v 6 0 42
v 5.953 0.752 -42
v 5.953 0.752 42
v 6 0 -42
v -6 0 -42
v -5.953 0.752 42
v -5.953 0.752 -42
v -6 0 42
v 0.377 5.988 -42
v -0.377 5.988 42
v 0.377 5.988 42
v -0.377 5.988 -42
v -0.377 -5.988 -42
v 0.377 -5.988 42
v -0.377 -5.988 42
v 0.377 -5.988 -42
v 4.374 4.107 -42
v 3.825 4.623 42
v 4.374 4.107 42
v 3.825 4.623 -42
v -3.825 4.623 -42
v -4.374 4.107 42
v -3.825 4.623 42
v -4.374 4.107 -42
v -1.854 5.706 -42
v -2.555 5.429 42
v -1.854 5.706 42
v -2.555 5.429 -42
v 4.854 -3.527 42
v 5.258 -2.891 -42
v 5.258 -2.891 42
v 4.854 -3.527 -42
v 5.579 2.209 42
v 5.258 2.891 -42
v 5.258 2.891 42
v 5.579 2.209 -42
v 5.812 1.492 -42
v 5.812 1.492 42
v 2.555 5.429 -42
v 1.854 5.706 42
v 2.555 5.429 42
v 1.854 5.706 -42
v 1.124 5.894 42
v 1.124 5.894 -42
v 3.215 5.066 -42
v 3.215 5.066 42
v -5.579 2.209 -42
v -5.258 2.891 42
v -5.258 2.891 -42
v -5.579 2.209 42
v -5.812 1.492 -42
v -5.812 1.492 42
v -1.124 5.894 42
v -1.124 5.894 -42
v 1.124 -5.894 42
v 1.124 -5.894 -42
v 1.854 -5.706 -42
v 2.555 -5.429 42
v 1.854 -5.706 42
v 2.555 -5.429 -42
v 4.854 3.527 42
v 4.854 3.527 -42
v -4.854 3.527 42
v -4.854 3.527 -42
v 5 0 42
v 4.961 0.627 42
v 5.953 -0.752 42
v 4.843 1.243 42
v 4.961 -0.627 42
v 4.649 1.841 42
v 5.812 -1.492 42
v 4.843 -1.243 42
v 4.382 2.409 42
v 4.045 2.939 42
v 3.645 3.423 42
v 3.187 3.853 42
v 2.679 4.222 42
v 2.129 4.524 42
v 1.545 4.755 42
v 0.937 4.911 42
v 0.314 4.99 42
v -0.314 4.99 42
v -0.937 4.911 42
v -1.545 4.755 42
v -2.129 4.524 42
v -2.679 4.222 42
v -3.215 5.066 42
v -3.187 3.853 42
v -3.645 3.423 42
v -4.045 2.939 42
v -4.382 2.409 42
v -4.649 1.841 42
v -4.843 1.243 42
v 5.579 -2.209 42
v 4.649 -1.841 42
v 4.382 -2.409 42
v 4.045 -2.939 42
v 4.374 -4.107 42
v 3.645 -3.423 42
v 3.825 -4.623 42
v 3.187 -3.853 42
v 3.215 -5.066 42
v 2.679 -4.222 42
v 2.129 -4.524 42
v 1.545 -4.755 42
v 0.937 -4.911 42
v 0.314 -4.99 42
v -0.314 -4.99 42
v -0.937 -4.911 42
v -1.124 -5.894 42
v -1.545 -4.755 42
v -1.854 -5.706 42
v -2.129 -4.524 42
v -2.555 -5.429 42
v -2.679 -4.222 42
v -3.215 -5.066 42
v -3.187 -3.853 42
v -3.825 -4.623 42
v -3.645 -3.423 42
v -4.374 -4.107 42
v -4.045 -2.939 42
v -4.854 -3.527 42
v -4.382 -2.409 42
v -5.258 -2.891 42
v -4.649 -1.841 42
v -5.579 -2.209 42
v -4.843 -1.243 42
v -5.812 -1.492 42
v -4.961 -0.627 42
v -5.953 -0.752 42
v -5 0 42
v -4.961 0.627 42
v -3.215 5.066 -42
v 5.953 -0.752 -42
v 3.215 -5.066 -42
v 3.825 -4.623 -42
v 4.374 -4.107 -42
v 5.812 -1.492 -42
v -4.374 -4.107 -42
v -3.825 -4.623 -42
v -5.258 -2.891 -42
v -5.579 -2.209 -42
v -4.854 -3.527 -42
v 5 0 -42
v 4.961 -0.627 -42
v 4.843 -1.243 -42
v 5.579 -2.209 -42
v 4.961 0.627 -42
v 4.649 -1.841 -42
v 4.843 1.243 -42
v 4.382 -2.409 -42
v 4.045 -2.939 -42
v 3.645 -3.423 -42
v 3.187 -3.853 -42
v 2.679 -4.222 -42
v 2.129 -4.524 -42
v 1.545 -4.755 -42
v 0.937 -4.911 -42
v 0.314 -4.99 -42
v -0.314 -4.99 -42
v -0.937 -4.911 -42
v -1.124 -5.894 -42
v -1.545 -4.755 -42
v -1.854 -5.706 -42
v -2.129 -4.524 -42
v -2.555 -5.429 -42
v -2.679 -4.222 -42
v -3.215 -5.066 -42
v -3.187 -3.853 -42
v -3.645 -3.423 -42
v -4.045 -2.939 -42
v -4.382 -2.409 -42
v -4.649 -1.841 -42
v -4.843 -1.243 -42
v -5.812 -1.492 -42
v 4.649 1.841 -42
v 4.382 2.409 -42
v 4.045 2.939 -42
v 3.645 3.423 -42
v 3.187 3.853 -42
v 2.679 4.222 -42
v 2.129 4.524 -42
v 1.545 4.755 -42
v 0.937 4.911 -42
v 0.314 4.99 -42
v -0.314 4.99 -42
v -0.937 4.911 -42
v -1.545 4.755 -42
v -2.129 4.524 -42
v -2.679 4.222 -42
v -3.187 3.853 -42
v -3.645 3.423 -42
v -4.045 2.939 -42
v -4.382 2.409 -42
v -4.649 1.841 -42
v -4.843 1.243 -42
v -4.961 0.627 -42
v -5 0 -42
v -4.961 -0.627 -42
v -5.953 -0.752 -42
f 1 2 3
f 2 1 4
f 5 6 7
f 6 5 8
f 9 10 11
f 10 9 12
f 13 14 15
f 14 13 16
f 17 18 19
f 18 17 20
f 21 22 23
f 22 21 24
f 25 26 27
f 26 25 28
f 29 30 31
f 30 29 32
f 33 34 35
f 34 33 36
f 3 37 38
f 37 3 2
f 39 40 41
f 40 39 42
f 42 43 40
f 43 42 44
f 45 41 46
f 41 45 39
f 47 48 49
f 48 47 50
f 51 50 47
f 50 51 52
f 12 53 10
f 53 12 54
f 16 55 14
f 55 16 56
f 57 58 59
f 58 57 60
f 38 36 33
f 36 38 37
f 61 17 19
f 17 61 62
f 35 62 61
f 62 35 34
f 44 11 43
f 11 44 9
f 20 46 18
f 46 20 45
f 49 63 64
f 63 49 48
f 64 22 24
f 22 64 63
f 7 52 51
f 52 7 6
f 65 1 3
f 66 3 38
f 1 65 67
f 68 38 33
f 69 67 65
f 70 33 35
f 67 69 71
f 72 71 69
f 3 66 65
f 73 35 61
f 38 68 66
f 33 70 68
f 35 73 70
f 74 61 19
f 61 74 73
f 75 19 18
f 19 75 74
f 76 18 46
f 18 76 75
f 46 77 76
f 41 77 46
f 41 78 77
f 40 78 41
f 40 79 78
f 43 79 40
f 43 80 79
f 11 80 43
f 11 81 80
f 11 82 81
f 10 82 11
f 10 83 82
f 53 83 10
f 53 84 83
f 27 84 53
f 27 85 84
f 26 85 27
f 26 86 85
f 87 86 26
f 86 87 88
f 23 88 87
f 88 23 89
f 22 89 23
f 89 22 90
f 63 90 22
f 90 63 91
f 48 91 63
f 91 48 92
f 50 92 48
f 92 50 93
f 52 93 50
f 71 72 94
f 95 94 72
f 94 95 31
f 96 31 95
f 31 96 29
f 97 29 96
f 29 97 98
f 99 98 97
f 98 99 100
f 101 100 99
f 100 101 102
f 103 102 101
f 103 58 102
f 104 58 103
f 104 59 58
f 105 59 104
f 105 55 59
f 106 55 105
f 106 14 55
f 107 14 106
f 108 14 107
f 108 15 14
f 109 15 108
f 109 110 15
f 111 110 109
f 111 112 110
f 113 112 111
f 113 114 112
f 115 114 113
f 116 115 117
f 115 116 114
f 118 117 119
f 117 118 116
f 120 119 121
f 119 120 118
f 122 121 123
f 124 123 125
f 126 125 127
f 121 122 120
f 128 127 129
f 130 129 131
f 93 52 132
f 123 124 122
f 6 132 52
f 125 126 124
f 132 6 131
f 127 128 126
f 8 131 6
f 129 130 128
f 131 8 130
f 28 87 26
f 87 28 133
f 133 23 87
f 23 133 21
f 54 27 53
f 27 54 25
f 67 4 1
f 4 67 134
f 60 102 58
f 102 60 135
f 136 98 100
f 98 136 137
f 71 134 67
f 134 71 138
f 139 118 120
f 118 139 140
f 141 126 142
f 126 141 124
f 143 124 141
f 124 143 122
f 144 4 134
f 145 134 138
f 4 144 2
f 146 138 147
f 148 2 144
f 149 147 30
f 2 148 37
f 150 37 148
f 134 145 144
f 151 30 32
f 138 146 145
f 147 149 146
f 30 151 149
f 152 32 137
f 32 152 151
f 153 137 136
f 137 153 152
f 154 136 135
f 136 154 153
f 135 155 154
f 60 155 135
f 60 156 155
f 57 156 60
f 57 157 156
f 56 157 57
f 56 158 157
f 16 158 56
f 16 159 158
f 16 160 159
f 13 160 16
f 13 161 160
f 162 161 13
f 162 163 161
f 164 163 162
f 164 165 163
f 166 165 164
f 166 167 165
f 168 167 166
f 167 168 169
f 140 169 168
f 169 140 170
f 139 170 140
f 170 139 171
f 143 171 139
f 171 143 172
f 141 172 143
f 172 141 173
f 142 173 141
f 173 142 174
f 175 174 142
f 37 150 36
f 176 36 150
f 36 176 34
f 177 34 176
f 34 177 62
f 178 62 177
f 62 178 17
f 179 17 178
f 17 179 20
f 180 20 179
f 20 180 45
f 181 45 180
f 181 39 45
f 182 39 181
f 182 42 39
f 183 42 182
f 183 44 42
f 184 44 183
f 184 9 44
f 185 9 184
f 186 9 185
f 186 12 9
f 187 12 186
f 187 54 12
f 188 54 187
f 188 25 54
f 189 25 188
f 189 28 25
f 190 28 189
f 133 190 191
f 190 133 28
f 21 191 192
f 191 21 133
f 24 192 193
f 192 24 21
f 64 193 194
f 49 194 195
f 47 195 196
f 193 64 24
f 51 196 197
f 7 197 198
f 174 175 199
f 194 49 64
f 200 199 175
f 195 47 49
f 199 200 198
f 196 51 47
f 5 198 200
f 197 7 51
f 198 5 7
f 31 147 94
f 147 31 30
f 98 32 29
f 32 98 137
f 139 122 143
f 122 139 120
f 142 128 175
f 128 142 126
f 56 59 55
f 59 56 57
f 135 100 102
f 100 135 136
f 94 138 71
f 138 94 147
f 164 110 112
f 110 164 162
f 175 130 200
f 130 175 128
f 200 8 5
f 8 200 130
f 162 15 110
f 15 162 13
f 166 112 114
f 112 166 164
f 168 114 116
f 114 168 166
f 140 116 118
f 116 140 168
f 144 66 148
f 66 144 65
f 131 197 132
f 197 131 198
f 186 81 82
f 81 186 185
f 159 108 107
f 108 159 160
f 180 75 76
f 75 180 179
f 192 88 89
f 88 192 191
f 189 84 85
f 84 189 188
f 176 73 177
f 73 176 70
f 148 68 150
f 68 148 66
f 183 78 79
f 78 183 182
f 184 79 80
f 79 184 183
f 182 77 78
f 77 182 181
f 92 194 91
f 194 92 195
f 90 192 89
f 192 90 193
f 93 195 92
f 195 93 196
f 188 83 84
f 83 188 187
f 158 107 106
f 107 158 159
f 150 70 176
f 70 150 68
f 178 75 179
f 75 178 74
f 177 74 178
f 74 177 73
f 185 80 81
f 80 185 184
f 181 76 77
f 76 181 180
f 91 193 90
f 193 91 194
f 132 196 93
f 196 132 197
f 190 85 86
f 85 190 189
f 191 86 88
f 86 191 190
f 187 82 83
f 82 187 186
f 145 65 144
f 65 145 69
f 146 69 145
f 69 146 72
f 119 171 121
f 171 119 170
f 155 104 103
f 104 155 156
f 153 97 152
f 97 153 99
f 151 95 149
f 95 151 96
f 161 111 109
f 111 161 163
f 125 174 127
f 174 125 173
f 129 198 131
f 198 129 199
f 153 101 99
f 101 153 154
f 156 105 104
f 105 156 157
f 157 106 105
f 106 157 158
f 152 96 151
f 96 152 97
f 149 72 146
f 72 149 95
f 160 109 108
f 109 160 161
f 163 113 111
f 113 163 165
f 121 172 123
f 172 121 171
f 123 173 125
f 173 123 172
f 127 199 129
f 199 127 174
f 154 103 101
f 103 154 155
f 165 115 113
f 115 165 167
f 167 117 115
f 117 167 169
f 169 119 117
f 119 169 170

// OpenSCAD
$fn = 50;


difference() {
	union() {
		translate(v = [0, 0, -42.0000000000]) {
			cylinder(h = 84, r = 6.0000000000);
		}
	}
	union() {
		translate(v = [0, 0, -100.0000000000]) {
			cylinder(h = 200, r = 5.0000000000);
		}
	}
}
